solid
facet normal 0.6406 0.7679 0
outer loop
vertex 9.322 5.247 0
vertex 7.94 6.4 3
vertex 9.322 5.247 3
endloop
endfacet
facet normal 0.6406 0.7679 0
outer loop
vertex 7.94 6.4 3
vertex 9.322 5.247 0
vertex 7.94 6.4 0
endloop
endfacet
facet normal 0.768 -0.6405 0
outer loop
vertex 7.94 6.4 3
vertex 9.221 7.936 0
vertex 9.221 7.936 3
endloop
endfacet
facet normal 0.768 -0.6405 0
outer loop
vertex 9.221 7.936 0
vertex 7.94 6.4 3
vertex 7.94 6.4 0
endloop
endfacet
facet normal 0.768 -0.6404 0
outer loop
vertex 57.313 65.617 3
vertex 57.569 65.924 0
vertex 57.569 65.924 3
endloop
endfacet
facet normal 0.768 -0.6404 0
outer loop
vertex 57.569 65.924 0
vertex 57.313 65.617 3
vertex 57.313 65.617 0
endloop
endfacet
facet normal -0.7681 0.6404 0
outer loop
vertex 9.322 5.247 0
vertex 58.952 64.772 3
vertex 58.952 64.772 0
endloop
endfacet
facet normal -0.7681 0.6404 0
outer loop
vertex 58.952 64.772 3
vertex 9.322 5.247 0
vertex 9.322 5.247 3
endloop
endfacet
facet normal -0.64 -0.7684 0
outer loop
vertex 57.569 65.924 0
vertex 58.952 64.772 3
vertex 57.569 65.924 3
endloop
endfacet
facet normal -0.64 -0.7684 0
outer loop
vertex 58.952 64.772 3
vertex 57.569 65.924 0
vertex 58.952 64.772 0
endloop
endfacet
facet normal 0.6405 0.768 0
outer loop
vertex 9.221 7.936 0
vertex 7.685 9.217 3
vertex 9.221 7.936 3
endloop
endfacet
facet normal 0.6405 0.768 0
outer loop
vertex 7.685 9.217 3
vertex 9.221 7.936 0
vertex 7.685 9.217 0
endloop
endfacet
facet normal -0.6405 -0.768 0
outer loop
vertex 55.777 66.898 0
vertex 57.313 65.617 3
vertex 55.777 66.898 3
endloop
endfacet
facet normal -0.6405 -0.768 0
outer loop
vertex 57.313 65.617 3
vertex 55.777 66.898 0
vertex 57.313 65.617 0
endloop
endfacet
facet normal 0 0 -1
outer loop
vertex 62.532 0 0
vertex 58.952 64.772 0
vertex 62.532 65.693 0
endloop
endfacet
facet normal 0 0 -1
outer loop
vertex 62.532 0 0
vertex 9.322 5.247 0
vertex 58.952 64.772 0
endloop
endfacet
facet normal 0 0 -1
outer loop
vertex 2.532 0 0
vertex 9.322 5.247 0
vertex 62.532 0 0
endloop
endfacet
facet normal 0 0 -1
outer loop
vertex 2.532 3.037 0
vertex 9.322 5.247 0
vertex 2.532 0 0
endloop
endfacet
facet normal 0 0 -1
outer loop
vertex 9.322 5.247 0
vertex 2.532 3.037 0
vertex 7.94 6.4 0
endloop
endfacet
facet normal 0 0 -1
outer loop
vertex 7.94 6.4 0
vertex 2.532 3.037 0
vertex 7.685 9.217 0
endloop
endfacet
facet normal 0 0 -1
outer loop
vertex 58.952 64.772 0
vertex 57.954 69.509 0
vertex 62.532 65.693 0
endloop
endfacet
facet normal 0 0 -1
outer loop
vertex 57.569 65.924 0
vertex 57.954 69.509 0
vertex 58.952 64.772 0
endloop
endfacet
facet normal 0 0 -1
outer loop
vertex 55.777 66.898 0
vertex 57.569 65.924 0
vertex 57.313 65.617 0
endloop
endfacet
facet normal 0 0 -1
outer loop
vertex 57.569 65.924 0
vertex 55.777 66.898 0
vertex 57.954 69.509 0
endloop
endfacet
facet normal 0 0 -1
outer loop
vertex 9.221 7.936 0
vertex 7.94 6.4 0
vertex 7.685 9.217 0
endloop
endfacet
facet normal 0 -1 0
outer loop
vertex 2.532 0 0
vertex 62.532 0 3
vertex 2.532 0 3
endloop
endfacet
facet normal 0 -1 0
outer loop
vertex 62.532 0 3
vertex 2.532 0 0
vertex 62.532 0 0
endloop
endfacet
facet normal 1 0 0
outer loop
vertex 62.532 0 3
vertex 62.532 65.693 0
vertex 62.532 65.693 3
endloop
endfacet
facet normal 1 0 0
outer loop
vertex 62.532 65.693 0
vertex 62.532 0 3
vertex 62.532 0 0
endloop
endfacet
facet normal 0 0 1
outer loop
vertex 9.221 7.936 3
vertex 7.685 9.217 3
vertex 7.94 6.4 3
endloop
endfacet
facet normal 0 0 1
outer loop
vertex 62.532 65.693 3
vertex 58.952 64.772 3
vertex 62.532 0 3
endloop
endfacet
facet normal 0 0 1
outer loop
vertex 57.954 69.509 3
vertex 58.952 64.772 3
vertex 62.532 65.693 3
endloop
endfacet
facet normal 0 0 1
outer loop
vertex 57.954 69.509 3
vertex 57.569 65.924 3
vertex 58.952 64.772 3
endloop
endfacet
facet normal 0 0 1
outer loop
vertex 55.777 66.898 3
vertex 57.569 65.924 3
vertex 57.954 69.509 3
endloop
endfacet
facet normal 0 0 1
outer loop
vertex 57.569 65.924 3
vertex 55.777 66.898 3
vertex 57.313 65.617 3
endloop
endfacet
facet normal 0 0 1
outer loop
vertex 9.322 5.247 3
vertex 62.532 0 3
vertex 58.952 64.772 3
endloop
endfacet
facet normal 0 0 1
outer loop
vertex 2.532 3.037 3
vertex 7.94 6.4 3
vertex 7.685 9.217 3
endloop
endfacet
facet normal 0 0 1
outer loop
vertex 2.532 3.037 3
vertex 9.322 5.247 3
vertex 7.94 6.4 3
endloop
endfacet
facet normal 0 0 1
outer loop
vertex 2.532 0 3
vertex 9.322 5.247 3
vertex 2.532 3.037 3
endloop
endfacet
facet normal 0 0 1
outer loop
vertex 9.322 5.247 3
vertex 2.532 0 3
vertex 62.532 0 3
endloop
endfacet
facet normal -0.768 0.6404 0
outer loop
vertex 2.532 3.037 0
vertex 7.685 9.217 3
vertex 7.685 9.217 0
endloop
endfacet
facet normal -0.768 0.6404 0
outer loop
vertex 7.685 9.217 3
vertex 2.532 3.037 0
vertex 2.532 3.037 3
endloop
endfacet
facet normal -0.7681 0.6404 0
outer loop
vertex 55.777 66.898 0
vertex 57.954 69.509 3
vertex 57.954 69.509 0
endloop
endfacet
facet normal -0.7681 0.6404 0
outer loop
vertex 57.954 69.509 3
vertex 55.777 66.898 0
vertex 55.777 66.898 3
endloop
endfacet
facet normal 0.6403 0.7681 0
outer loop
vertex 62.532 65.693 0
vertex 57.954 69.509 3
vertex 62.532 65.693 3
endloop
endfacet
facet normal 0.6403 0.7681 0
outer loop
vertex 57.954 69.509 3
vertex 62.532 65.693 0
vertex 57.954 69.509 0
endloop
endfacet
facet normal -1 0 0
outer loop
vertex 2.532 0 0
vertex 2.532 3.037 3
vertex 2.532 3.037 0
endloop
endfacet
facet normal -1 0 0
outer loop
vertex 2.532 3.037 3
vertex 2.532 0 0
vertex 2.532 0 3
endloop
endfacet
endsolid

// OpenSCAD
/* Support platine */

ANGLE=39.82;

PCB_WIDTH=77.5;
PCB_HEIGHT=72;
PCB_THICK=1.8;

ENTRETOISE_HEIGHT=75;
ENTRETOISE_WIDTH=ENTRETOISE_HEIGHT * tan(ANGLE);

module PCB(){
    cube([PCB_WIDTH, PCB_THICK, PCB_HEIGHT]);
}

module PCB_hole(){
    cube([PCB_WIDTH - 2.4, 6, PCB_HEIGHT]);
}

module entretoise()
{
    path = [
        [0, 0],
        [ENTRETOISE_WIDTH, 0],
        [ENTRETOISE_WIDTH, ENTRETOISE_HEIGHT]
    ];


    difference()
    {
        linear_extrude(height=3)
        {
            polygon(path);
        }

        union()
        {
            rotate([0,0,90-ANGLE]) translate([10, -PCB_THICK-2,-1]) PCB();
            rotate([0, 0, 90-ANGLE]) translate([12, -PCB_THICK-1, -1]) PCB_hole();
        }
        
        rotate([0,0,90-ANGLE]) translate([10 + PCB_WIDTH+3, -10, -1]) cube([10, 20, 5]);
        translate([0,-.1,-.1]) cube([ENTRETOISE_WIDTH - 60, 6.1, 3.2]);
    }
}

entretoise();

//translate([0,0,50]) entretoise();
//rotate([0,0,90-ANGLE]) translate([10, -PCB_THICK-2,-10]) color("red") PCB();
